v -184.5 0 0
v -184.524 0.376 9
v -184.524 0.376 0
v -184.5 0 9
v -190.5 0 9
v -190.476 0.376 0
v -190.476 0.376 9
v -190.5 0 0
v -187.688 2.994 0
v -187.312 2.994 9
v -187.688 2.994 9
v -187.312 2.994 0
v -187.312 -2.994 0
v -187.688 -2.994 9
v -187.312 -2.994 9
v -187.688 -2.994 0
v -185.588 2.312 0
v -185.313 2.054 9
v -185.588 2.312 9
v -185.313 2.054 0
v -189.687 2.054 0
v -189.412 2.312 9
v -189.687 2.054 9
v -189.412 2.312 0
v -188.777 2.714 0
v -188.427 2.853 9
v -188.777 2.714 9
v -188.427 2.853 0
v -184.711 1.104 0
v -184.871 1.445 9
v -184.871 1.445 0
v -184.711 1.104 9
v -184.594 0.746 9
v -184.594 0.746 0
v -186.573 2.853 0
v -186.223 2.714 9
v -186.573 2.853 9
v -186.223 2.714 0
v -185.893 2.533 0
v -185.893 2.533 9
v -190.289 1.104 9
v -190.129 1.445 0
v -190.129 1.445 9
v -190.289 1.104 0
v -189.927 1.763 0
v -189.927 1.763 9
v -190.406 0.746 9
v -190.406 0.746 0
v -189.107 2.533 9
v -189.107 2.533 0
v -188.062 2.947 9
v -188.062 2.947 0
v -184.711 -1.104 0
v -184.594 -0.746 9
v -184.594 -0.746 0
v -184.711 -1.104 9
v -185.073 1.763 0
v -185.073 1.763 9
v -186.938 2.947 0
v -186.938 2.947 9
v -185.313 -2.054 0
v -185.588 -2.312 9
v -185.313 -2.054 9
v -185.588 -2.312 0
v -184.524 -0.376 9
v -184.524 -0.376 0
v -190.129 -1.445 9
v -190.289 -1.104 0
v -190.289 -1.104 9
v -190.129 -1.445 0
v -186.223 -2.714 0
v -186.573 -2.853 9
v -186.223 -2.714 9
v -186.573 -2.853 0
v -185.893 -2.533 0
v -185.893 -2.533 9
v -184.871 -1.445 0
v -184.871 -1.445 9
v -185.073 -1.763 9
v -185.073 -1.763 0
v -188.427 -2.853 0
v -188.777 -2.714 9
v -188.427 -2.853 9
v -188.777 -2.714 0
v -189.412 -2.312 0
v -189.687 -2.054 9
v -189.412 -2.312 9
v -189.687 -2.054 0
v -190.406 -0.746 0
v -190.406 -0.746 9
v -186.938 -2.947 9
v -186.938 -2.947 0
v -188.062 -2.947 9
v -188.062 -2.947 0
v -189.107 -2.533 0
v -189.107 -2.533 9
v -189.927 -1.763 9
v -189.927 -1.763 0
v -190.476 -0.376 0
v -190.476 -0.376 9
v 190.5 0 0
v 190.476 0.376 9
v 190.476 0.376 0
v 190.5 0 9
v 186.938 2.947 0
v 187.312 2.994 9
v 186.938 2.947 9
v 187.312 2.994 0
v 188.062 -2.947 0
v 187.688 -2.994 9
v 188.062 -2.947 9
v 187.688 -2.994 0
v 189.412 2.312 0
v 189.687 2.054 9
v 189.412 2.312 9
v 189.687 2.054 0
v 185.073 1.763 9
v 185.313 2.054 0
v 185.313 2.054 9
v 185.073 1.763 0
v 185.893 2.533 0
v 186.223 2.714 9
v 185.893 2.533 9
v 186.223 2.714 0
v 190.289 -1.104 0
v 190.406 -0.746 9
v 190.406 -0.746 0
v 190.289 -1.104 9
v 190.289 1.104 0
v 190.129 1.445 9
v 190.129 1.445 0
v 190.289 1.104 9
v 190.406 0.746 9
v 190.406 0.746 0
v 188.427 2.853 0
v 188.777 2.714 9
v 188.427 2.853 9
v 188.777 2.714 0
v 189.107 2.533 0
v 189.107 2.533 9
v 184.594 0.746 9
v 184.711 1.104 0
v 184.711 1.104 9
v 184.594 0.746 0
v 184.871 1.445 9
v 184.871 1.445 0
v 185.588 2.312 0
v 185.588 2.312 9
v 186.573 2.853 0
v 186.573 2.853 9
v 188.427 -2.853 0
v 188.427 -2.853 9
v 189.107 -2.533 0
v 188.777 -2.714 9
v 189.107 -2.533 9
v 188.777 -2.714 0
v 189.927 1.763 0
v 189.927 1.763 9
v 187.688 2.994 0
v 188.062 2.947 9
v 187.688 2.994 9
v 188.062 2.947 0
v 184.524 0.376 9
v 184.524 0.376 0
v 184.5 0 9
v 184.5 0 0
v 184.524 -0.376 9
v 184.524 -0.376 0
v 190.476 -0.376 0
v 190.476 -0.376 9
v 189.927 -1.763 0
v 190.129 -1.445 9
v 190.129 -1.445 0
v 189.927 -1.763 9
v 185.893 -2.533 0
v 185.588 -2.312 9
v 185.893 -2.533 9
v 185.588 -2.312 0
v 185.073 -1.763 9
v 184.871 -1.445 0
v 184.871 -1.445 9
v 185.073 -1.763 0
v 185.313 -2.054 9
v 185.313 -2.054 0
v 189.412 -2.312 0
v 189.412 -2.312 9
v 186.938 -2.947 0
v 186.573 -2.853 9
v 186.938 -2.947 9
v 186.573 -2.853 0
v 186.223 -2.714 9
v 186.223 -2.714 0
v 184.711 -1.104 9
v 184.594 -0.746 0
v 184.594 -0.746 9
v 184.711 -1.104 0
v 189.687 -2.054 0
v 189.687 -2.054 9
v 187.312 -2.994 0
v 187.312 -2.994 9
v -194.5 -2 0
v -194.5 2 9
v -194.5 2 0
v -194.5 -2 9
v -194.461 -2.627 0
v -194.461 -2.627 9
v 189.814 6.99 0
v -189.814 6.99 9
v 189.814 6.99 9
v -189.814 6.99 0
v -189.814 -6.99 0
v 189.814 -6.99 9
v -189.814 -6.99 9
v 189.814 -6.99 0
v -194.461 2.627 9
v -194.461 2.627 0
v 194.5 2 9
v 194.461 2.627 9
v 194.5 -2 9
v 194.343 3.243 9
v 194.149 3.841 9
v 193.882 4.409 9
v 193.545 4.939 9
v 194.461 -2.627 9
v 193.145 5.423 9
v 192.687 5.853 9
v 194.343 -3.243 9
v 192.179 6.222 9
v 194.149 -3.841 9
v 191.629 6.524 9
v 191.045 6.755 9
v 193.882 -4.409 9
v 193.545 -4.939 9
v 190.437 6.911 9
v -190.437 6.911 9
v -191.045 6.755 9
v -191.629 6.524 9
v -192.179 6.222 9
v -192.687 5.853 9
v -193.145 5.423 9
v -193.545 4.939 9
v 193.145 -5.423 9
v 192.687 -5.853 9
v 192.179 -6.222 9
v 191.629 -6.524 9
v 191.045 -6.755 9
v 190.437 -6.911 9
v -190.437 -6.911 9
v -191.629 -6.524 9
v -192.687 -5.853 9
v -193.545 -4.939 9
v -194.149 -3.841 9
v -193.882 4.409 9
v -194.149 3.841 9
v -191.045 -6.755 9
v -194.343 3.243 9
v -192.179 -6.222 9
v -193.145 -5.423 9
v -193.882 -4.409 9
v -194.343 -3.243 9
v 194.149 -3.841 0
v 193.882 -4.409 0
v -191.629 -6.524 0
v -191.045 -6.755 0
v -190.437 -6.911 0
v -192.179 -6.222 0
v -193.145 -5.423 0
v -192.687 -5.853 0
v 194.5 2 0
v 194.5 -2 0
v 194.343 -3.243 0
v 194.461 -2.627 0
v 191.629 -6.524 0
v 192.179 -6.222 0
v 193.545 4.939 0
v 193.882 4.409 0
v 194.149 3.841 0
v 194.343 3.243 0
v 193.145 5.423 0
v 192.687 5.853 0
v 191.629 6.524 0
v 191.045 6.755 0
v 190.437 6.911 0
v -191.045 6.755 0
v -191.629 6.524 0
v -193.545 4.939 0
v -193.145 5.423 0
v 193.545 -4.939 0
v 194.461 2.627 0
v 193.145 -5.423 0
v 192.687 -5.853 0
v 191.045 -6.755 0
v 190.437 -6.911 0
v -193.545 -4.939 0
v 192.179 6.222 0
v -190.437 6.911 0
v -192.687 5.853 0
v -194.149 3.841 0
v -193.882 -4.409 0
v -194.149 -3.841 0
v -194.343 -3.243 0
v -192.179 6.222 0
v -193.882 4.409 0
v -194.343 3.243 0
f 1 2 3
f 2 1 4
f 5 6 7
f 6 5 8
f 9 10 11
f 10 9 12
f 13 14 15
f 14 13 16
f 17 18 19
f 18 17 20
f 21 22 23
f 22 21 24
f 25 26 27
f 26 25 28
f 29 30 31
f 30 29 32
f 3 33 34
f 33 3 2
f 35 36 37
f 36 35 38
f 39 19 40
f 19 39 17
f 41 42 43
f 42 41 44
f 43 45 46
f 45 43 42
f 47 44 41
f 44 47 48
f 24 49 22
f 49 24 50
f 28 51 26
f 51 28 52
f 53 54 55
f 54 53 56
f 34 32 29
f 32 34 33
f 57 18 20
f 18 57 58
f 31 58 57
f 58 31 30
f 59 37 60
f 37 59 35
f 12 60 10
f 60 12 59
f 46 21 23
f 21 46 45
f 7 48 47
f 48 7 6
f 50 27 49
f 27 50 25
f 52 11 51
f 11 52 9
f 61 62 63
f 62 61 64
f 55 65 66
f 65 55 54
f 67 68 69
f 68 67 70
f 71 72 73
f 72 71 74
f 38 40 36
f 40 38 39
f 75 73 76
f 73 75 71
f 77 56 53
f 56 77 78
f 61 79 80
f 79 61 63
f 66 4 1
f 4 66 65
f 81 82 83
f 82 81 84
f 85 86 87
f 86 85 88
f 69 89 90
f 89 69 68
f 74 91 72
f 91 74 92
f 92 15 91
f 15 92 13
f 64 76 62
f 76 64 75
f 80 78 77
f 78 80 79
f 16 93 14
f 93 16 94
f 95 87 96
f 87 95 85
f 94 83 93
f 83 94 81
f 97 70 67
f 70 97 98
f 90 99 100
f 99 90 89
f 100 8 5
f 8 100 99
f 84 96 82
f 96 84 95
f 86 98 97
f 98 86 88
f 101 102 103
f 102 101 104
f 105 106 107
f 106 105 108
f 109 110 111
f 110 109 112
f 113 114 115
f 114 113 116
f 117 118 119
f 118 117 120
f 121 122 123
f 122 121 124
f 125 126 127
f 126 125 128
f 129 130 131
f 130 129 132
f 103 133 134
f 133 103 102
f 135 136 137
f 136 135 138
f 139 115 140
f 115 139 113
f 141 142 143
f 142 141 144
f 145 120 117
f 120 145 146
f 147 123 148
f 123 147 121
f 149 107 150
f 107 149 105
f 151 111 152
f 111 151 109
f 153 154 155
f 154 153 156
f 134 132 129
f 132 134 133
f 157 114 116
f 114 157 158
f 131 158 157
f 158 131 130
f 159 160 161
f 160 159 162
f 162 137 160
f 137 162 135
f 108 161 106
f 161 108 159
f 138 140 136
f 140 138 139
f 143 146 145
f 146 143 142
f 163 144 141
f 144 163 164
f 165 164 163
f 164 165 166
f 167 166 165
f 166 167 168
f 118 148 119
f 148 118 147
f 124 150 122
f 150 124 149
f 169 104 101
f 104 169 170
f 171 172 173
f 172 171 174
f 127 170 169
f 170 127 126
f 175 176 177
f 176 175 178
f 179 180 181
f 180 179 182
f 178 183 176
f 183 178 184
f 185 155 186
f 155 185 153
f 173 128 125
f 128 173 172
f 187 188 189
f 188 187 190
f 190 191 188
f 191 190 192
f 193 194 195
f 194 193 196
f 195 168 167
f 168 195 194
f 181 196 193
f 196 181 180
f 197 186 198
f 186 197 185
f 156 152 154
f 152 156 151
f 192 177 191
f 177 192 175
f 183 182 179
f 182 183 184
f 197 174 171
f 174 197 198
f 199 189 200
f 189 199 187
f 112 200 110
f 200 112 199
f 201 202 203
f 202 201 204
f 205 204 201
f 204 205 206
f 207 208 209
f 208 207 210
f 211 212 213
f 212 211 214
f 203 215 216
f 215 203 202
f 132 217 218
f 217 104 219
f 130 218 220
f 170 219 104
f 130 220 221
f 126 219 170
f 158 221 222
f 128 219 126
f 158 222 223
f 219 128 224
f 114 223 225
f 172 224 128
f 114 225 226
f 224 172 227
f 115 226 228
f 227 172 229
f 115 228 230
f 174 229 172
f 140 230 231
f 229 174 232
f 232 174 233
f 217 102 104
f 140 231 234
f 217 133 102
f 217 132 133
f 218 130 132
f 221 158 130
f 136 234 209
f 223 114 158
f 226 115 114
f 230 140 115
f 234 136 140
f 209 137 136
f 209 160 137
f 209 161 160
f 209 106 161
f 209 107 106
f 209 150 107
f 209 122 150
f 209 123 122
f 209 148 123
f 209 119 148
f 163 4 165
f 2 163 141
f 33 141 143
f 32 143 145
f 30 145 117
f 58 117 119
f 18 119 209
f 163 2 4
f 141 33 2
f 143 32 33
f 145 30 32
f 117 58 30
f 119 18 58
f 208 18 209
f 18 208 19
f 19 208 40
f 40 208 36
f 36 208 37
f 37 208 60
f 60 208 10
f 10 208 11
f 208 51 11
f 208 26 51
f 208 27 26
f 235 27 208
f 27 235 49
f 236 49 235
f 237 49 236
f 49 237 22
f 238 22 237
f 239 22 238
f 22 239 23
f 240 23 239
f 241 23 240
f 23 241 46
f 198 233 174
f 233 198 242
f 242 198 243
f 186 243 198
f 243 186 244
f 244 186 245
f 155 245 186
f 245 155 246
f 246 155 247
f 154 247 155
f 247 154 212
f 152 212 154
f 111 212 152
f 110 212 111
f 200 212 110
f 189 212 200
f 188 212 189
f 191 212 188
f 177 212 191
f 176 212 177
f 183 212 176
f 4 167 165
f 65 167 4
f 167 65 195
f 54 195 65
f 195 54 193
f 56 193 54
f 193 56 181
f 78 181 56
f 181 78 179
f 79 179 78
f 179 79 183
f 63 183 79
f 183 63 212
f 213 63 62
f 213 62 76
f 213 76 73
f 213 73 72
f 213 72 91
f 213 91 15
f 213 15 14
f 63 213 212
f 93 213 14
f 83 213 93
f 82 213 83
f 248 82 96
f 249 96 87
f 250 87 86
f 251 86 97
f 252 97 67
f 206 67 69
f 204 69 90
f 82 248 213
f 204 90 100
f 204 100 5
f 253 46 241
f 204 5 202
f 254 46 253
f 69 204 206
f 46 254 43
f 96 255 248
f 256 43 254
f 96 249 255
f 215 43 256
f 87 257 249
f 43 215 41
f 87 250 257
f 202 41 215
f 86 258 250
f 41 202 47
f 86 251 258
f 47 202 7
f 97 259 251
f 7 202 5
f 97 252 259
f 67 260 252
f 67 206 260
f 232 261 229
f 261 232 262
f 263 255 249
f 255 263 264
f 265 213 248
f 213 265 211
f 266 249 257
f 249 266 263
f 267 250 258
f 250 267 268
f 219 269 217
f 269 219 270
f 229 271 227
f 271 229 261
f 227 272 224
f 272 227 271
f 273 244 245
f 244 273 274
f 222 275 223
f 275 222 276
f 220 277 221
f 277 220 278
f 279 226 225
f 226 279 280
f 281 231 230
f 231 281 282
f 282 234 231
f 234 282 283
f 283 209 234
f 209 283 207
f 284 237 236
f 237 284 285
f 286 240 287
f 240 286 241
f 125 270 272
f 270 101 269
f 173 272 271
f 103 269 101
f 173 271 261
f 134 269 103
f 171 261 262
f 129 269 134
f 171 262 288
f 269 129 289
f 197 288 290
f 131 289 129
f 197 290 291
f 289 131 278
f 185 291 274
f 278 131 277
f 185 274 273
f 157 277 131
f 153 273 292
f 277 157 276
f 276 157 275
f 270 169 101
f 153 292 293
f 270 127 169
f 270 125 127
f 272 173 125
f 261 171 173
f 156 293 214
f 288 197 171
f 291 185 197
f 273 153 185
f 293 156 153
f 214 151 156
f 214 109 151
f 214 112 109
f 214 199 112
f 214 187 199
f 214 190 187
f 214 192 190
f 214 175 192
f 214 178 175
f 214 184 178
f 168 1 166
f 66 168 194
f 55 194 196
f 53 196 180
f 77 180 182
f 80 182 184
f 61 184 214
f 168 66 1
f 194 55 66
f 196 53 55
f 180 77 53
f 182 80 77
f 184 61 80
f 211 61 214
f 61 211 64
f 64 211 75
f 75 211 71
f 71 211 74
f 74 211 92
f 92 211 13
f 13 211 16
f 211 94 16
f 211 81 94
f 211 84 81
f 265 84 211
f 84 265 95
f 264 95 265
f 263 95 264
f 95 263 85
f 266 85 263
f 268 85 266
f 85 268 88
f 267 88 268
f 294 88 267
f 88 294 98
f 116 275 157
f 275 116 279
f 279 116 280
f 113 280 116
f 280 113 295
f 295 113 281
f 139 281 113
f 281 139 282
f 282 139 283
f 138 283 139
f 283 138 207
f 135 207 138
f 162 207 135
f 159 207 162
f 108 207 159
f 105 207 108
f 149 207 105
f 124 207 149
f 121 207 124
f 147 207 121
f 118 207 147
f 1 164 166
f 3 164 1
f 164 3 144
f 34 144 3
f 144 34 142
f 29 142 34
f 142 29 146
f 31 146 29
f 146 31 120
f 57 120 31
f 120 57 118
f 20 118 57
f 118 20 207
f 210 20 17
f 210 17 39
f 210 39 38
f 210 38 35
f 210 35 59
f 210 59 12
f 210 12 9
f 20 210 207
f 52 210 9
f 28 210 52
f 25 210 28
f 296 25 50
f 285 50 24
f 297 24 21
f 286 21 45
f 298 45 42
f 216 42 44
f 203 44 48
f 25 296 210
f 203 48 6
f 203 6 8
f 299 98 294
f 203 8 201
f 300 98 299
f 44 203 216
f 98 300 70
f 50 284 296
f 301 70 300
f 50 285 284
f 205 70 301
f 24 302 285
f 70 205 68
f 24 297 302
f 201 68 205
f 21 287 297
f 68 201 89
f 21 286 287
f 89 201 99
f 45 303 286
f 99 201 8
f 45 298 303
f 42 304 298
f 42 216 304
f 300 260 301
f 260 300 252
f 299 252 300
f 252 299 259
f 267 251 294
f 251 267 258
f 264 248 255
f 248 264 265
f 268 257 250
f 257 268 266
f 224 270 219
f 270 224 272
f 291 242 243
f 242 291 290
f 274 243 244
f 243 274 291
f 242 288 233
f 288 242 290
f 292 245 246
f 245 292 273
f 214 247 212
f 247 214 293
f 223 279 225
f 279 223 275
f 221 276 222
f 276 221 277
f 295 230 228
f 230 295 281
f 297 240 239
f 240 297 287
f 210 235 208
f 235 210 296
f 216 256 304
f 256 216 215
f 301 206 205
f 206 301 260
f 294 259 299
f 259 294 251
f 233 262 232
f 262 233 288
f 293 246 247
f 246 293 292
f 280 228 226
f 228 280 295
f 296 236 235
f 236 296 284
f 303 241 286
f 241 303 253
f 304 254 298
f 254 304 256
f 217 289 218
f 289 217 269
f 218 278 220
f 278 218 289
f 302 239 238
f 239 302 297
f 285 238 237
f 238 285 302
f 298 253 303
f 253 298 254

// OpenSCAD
$fn = 50;


difference() {
	union() {
		hull() {
			translate(v = [-189.5000000000, 2.0000000000, 0]) {
				cylinder(h = 9, r = 5);
			}
			translate(v = [189.5000000000, 2.0000000000, 0]) {
				cylinder(h = 9, r = 5);
			}
			translate(v = [-189.5000000000, -2.0000000000, 0]) {
				cylinder(h = 9, r = 5);
			}
			translate(v = [189.5000000000, -2.0000000000, 0]) {
				cylinder(h = 9, r = 5);
			}
		}
	}
	union() {
		translate(v = [-187.5000000000, 0.0000000000, -100.0000000000]) {
			cylinder(h = 200, r = 3.0000000000);
		}
		translate(v = [-187.5000000000, 0.0000000000, -100.0000000000]) {
			cylinder(h = 200, r = 3.0000000000);
		}
		translate(v = [187.5000000000, 0.0000000000, -100.0000000000]) {
			cylinder(h = 200, r = 3.0000000000);
		}
		translate(v = [187.5000000000, 0.0000000000, -100.0000000000]) {
			cylinder(h = 200, r = 3.0000000000);
		}
	}
}
